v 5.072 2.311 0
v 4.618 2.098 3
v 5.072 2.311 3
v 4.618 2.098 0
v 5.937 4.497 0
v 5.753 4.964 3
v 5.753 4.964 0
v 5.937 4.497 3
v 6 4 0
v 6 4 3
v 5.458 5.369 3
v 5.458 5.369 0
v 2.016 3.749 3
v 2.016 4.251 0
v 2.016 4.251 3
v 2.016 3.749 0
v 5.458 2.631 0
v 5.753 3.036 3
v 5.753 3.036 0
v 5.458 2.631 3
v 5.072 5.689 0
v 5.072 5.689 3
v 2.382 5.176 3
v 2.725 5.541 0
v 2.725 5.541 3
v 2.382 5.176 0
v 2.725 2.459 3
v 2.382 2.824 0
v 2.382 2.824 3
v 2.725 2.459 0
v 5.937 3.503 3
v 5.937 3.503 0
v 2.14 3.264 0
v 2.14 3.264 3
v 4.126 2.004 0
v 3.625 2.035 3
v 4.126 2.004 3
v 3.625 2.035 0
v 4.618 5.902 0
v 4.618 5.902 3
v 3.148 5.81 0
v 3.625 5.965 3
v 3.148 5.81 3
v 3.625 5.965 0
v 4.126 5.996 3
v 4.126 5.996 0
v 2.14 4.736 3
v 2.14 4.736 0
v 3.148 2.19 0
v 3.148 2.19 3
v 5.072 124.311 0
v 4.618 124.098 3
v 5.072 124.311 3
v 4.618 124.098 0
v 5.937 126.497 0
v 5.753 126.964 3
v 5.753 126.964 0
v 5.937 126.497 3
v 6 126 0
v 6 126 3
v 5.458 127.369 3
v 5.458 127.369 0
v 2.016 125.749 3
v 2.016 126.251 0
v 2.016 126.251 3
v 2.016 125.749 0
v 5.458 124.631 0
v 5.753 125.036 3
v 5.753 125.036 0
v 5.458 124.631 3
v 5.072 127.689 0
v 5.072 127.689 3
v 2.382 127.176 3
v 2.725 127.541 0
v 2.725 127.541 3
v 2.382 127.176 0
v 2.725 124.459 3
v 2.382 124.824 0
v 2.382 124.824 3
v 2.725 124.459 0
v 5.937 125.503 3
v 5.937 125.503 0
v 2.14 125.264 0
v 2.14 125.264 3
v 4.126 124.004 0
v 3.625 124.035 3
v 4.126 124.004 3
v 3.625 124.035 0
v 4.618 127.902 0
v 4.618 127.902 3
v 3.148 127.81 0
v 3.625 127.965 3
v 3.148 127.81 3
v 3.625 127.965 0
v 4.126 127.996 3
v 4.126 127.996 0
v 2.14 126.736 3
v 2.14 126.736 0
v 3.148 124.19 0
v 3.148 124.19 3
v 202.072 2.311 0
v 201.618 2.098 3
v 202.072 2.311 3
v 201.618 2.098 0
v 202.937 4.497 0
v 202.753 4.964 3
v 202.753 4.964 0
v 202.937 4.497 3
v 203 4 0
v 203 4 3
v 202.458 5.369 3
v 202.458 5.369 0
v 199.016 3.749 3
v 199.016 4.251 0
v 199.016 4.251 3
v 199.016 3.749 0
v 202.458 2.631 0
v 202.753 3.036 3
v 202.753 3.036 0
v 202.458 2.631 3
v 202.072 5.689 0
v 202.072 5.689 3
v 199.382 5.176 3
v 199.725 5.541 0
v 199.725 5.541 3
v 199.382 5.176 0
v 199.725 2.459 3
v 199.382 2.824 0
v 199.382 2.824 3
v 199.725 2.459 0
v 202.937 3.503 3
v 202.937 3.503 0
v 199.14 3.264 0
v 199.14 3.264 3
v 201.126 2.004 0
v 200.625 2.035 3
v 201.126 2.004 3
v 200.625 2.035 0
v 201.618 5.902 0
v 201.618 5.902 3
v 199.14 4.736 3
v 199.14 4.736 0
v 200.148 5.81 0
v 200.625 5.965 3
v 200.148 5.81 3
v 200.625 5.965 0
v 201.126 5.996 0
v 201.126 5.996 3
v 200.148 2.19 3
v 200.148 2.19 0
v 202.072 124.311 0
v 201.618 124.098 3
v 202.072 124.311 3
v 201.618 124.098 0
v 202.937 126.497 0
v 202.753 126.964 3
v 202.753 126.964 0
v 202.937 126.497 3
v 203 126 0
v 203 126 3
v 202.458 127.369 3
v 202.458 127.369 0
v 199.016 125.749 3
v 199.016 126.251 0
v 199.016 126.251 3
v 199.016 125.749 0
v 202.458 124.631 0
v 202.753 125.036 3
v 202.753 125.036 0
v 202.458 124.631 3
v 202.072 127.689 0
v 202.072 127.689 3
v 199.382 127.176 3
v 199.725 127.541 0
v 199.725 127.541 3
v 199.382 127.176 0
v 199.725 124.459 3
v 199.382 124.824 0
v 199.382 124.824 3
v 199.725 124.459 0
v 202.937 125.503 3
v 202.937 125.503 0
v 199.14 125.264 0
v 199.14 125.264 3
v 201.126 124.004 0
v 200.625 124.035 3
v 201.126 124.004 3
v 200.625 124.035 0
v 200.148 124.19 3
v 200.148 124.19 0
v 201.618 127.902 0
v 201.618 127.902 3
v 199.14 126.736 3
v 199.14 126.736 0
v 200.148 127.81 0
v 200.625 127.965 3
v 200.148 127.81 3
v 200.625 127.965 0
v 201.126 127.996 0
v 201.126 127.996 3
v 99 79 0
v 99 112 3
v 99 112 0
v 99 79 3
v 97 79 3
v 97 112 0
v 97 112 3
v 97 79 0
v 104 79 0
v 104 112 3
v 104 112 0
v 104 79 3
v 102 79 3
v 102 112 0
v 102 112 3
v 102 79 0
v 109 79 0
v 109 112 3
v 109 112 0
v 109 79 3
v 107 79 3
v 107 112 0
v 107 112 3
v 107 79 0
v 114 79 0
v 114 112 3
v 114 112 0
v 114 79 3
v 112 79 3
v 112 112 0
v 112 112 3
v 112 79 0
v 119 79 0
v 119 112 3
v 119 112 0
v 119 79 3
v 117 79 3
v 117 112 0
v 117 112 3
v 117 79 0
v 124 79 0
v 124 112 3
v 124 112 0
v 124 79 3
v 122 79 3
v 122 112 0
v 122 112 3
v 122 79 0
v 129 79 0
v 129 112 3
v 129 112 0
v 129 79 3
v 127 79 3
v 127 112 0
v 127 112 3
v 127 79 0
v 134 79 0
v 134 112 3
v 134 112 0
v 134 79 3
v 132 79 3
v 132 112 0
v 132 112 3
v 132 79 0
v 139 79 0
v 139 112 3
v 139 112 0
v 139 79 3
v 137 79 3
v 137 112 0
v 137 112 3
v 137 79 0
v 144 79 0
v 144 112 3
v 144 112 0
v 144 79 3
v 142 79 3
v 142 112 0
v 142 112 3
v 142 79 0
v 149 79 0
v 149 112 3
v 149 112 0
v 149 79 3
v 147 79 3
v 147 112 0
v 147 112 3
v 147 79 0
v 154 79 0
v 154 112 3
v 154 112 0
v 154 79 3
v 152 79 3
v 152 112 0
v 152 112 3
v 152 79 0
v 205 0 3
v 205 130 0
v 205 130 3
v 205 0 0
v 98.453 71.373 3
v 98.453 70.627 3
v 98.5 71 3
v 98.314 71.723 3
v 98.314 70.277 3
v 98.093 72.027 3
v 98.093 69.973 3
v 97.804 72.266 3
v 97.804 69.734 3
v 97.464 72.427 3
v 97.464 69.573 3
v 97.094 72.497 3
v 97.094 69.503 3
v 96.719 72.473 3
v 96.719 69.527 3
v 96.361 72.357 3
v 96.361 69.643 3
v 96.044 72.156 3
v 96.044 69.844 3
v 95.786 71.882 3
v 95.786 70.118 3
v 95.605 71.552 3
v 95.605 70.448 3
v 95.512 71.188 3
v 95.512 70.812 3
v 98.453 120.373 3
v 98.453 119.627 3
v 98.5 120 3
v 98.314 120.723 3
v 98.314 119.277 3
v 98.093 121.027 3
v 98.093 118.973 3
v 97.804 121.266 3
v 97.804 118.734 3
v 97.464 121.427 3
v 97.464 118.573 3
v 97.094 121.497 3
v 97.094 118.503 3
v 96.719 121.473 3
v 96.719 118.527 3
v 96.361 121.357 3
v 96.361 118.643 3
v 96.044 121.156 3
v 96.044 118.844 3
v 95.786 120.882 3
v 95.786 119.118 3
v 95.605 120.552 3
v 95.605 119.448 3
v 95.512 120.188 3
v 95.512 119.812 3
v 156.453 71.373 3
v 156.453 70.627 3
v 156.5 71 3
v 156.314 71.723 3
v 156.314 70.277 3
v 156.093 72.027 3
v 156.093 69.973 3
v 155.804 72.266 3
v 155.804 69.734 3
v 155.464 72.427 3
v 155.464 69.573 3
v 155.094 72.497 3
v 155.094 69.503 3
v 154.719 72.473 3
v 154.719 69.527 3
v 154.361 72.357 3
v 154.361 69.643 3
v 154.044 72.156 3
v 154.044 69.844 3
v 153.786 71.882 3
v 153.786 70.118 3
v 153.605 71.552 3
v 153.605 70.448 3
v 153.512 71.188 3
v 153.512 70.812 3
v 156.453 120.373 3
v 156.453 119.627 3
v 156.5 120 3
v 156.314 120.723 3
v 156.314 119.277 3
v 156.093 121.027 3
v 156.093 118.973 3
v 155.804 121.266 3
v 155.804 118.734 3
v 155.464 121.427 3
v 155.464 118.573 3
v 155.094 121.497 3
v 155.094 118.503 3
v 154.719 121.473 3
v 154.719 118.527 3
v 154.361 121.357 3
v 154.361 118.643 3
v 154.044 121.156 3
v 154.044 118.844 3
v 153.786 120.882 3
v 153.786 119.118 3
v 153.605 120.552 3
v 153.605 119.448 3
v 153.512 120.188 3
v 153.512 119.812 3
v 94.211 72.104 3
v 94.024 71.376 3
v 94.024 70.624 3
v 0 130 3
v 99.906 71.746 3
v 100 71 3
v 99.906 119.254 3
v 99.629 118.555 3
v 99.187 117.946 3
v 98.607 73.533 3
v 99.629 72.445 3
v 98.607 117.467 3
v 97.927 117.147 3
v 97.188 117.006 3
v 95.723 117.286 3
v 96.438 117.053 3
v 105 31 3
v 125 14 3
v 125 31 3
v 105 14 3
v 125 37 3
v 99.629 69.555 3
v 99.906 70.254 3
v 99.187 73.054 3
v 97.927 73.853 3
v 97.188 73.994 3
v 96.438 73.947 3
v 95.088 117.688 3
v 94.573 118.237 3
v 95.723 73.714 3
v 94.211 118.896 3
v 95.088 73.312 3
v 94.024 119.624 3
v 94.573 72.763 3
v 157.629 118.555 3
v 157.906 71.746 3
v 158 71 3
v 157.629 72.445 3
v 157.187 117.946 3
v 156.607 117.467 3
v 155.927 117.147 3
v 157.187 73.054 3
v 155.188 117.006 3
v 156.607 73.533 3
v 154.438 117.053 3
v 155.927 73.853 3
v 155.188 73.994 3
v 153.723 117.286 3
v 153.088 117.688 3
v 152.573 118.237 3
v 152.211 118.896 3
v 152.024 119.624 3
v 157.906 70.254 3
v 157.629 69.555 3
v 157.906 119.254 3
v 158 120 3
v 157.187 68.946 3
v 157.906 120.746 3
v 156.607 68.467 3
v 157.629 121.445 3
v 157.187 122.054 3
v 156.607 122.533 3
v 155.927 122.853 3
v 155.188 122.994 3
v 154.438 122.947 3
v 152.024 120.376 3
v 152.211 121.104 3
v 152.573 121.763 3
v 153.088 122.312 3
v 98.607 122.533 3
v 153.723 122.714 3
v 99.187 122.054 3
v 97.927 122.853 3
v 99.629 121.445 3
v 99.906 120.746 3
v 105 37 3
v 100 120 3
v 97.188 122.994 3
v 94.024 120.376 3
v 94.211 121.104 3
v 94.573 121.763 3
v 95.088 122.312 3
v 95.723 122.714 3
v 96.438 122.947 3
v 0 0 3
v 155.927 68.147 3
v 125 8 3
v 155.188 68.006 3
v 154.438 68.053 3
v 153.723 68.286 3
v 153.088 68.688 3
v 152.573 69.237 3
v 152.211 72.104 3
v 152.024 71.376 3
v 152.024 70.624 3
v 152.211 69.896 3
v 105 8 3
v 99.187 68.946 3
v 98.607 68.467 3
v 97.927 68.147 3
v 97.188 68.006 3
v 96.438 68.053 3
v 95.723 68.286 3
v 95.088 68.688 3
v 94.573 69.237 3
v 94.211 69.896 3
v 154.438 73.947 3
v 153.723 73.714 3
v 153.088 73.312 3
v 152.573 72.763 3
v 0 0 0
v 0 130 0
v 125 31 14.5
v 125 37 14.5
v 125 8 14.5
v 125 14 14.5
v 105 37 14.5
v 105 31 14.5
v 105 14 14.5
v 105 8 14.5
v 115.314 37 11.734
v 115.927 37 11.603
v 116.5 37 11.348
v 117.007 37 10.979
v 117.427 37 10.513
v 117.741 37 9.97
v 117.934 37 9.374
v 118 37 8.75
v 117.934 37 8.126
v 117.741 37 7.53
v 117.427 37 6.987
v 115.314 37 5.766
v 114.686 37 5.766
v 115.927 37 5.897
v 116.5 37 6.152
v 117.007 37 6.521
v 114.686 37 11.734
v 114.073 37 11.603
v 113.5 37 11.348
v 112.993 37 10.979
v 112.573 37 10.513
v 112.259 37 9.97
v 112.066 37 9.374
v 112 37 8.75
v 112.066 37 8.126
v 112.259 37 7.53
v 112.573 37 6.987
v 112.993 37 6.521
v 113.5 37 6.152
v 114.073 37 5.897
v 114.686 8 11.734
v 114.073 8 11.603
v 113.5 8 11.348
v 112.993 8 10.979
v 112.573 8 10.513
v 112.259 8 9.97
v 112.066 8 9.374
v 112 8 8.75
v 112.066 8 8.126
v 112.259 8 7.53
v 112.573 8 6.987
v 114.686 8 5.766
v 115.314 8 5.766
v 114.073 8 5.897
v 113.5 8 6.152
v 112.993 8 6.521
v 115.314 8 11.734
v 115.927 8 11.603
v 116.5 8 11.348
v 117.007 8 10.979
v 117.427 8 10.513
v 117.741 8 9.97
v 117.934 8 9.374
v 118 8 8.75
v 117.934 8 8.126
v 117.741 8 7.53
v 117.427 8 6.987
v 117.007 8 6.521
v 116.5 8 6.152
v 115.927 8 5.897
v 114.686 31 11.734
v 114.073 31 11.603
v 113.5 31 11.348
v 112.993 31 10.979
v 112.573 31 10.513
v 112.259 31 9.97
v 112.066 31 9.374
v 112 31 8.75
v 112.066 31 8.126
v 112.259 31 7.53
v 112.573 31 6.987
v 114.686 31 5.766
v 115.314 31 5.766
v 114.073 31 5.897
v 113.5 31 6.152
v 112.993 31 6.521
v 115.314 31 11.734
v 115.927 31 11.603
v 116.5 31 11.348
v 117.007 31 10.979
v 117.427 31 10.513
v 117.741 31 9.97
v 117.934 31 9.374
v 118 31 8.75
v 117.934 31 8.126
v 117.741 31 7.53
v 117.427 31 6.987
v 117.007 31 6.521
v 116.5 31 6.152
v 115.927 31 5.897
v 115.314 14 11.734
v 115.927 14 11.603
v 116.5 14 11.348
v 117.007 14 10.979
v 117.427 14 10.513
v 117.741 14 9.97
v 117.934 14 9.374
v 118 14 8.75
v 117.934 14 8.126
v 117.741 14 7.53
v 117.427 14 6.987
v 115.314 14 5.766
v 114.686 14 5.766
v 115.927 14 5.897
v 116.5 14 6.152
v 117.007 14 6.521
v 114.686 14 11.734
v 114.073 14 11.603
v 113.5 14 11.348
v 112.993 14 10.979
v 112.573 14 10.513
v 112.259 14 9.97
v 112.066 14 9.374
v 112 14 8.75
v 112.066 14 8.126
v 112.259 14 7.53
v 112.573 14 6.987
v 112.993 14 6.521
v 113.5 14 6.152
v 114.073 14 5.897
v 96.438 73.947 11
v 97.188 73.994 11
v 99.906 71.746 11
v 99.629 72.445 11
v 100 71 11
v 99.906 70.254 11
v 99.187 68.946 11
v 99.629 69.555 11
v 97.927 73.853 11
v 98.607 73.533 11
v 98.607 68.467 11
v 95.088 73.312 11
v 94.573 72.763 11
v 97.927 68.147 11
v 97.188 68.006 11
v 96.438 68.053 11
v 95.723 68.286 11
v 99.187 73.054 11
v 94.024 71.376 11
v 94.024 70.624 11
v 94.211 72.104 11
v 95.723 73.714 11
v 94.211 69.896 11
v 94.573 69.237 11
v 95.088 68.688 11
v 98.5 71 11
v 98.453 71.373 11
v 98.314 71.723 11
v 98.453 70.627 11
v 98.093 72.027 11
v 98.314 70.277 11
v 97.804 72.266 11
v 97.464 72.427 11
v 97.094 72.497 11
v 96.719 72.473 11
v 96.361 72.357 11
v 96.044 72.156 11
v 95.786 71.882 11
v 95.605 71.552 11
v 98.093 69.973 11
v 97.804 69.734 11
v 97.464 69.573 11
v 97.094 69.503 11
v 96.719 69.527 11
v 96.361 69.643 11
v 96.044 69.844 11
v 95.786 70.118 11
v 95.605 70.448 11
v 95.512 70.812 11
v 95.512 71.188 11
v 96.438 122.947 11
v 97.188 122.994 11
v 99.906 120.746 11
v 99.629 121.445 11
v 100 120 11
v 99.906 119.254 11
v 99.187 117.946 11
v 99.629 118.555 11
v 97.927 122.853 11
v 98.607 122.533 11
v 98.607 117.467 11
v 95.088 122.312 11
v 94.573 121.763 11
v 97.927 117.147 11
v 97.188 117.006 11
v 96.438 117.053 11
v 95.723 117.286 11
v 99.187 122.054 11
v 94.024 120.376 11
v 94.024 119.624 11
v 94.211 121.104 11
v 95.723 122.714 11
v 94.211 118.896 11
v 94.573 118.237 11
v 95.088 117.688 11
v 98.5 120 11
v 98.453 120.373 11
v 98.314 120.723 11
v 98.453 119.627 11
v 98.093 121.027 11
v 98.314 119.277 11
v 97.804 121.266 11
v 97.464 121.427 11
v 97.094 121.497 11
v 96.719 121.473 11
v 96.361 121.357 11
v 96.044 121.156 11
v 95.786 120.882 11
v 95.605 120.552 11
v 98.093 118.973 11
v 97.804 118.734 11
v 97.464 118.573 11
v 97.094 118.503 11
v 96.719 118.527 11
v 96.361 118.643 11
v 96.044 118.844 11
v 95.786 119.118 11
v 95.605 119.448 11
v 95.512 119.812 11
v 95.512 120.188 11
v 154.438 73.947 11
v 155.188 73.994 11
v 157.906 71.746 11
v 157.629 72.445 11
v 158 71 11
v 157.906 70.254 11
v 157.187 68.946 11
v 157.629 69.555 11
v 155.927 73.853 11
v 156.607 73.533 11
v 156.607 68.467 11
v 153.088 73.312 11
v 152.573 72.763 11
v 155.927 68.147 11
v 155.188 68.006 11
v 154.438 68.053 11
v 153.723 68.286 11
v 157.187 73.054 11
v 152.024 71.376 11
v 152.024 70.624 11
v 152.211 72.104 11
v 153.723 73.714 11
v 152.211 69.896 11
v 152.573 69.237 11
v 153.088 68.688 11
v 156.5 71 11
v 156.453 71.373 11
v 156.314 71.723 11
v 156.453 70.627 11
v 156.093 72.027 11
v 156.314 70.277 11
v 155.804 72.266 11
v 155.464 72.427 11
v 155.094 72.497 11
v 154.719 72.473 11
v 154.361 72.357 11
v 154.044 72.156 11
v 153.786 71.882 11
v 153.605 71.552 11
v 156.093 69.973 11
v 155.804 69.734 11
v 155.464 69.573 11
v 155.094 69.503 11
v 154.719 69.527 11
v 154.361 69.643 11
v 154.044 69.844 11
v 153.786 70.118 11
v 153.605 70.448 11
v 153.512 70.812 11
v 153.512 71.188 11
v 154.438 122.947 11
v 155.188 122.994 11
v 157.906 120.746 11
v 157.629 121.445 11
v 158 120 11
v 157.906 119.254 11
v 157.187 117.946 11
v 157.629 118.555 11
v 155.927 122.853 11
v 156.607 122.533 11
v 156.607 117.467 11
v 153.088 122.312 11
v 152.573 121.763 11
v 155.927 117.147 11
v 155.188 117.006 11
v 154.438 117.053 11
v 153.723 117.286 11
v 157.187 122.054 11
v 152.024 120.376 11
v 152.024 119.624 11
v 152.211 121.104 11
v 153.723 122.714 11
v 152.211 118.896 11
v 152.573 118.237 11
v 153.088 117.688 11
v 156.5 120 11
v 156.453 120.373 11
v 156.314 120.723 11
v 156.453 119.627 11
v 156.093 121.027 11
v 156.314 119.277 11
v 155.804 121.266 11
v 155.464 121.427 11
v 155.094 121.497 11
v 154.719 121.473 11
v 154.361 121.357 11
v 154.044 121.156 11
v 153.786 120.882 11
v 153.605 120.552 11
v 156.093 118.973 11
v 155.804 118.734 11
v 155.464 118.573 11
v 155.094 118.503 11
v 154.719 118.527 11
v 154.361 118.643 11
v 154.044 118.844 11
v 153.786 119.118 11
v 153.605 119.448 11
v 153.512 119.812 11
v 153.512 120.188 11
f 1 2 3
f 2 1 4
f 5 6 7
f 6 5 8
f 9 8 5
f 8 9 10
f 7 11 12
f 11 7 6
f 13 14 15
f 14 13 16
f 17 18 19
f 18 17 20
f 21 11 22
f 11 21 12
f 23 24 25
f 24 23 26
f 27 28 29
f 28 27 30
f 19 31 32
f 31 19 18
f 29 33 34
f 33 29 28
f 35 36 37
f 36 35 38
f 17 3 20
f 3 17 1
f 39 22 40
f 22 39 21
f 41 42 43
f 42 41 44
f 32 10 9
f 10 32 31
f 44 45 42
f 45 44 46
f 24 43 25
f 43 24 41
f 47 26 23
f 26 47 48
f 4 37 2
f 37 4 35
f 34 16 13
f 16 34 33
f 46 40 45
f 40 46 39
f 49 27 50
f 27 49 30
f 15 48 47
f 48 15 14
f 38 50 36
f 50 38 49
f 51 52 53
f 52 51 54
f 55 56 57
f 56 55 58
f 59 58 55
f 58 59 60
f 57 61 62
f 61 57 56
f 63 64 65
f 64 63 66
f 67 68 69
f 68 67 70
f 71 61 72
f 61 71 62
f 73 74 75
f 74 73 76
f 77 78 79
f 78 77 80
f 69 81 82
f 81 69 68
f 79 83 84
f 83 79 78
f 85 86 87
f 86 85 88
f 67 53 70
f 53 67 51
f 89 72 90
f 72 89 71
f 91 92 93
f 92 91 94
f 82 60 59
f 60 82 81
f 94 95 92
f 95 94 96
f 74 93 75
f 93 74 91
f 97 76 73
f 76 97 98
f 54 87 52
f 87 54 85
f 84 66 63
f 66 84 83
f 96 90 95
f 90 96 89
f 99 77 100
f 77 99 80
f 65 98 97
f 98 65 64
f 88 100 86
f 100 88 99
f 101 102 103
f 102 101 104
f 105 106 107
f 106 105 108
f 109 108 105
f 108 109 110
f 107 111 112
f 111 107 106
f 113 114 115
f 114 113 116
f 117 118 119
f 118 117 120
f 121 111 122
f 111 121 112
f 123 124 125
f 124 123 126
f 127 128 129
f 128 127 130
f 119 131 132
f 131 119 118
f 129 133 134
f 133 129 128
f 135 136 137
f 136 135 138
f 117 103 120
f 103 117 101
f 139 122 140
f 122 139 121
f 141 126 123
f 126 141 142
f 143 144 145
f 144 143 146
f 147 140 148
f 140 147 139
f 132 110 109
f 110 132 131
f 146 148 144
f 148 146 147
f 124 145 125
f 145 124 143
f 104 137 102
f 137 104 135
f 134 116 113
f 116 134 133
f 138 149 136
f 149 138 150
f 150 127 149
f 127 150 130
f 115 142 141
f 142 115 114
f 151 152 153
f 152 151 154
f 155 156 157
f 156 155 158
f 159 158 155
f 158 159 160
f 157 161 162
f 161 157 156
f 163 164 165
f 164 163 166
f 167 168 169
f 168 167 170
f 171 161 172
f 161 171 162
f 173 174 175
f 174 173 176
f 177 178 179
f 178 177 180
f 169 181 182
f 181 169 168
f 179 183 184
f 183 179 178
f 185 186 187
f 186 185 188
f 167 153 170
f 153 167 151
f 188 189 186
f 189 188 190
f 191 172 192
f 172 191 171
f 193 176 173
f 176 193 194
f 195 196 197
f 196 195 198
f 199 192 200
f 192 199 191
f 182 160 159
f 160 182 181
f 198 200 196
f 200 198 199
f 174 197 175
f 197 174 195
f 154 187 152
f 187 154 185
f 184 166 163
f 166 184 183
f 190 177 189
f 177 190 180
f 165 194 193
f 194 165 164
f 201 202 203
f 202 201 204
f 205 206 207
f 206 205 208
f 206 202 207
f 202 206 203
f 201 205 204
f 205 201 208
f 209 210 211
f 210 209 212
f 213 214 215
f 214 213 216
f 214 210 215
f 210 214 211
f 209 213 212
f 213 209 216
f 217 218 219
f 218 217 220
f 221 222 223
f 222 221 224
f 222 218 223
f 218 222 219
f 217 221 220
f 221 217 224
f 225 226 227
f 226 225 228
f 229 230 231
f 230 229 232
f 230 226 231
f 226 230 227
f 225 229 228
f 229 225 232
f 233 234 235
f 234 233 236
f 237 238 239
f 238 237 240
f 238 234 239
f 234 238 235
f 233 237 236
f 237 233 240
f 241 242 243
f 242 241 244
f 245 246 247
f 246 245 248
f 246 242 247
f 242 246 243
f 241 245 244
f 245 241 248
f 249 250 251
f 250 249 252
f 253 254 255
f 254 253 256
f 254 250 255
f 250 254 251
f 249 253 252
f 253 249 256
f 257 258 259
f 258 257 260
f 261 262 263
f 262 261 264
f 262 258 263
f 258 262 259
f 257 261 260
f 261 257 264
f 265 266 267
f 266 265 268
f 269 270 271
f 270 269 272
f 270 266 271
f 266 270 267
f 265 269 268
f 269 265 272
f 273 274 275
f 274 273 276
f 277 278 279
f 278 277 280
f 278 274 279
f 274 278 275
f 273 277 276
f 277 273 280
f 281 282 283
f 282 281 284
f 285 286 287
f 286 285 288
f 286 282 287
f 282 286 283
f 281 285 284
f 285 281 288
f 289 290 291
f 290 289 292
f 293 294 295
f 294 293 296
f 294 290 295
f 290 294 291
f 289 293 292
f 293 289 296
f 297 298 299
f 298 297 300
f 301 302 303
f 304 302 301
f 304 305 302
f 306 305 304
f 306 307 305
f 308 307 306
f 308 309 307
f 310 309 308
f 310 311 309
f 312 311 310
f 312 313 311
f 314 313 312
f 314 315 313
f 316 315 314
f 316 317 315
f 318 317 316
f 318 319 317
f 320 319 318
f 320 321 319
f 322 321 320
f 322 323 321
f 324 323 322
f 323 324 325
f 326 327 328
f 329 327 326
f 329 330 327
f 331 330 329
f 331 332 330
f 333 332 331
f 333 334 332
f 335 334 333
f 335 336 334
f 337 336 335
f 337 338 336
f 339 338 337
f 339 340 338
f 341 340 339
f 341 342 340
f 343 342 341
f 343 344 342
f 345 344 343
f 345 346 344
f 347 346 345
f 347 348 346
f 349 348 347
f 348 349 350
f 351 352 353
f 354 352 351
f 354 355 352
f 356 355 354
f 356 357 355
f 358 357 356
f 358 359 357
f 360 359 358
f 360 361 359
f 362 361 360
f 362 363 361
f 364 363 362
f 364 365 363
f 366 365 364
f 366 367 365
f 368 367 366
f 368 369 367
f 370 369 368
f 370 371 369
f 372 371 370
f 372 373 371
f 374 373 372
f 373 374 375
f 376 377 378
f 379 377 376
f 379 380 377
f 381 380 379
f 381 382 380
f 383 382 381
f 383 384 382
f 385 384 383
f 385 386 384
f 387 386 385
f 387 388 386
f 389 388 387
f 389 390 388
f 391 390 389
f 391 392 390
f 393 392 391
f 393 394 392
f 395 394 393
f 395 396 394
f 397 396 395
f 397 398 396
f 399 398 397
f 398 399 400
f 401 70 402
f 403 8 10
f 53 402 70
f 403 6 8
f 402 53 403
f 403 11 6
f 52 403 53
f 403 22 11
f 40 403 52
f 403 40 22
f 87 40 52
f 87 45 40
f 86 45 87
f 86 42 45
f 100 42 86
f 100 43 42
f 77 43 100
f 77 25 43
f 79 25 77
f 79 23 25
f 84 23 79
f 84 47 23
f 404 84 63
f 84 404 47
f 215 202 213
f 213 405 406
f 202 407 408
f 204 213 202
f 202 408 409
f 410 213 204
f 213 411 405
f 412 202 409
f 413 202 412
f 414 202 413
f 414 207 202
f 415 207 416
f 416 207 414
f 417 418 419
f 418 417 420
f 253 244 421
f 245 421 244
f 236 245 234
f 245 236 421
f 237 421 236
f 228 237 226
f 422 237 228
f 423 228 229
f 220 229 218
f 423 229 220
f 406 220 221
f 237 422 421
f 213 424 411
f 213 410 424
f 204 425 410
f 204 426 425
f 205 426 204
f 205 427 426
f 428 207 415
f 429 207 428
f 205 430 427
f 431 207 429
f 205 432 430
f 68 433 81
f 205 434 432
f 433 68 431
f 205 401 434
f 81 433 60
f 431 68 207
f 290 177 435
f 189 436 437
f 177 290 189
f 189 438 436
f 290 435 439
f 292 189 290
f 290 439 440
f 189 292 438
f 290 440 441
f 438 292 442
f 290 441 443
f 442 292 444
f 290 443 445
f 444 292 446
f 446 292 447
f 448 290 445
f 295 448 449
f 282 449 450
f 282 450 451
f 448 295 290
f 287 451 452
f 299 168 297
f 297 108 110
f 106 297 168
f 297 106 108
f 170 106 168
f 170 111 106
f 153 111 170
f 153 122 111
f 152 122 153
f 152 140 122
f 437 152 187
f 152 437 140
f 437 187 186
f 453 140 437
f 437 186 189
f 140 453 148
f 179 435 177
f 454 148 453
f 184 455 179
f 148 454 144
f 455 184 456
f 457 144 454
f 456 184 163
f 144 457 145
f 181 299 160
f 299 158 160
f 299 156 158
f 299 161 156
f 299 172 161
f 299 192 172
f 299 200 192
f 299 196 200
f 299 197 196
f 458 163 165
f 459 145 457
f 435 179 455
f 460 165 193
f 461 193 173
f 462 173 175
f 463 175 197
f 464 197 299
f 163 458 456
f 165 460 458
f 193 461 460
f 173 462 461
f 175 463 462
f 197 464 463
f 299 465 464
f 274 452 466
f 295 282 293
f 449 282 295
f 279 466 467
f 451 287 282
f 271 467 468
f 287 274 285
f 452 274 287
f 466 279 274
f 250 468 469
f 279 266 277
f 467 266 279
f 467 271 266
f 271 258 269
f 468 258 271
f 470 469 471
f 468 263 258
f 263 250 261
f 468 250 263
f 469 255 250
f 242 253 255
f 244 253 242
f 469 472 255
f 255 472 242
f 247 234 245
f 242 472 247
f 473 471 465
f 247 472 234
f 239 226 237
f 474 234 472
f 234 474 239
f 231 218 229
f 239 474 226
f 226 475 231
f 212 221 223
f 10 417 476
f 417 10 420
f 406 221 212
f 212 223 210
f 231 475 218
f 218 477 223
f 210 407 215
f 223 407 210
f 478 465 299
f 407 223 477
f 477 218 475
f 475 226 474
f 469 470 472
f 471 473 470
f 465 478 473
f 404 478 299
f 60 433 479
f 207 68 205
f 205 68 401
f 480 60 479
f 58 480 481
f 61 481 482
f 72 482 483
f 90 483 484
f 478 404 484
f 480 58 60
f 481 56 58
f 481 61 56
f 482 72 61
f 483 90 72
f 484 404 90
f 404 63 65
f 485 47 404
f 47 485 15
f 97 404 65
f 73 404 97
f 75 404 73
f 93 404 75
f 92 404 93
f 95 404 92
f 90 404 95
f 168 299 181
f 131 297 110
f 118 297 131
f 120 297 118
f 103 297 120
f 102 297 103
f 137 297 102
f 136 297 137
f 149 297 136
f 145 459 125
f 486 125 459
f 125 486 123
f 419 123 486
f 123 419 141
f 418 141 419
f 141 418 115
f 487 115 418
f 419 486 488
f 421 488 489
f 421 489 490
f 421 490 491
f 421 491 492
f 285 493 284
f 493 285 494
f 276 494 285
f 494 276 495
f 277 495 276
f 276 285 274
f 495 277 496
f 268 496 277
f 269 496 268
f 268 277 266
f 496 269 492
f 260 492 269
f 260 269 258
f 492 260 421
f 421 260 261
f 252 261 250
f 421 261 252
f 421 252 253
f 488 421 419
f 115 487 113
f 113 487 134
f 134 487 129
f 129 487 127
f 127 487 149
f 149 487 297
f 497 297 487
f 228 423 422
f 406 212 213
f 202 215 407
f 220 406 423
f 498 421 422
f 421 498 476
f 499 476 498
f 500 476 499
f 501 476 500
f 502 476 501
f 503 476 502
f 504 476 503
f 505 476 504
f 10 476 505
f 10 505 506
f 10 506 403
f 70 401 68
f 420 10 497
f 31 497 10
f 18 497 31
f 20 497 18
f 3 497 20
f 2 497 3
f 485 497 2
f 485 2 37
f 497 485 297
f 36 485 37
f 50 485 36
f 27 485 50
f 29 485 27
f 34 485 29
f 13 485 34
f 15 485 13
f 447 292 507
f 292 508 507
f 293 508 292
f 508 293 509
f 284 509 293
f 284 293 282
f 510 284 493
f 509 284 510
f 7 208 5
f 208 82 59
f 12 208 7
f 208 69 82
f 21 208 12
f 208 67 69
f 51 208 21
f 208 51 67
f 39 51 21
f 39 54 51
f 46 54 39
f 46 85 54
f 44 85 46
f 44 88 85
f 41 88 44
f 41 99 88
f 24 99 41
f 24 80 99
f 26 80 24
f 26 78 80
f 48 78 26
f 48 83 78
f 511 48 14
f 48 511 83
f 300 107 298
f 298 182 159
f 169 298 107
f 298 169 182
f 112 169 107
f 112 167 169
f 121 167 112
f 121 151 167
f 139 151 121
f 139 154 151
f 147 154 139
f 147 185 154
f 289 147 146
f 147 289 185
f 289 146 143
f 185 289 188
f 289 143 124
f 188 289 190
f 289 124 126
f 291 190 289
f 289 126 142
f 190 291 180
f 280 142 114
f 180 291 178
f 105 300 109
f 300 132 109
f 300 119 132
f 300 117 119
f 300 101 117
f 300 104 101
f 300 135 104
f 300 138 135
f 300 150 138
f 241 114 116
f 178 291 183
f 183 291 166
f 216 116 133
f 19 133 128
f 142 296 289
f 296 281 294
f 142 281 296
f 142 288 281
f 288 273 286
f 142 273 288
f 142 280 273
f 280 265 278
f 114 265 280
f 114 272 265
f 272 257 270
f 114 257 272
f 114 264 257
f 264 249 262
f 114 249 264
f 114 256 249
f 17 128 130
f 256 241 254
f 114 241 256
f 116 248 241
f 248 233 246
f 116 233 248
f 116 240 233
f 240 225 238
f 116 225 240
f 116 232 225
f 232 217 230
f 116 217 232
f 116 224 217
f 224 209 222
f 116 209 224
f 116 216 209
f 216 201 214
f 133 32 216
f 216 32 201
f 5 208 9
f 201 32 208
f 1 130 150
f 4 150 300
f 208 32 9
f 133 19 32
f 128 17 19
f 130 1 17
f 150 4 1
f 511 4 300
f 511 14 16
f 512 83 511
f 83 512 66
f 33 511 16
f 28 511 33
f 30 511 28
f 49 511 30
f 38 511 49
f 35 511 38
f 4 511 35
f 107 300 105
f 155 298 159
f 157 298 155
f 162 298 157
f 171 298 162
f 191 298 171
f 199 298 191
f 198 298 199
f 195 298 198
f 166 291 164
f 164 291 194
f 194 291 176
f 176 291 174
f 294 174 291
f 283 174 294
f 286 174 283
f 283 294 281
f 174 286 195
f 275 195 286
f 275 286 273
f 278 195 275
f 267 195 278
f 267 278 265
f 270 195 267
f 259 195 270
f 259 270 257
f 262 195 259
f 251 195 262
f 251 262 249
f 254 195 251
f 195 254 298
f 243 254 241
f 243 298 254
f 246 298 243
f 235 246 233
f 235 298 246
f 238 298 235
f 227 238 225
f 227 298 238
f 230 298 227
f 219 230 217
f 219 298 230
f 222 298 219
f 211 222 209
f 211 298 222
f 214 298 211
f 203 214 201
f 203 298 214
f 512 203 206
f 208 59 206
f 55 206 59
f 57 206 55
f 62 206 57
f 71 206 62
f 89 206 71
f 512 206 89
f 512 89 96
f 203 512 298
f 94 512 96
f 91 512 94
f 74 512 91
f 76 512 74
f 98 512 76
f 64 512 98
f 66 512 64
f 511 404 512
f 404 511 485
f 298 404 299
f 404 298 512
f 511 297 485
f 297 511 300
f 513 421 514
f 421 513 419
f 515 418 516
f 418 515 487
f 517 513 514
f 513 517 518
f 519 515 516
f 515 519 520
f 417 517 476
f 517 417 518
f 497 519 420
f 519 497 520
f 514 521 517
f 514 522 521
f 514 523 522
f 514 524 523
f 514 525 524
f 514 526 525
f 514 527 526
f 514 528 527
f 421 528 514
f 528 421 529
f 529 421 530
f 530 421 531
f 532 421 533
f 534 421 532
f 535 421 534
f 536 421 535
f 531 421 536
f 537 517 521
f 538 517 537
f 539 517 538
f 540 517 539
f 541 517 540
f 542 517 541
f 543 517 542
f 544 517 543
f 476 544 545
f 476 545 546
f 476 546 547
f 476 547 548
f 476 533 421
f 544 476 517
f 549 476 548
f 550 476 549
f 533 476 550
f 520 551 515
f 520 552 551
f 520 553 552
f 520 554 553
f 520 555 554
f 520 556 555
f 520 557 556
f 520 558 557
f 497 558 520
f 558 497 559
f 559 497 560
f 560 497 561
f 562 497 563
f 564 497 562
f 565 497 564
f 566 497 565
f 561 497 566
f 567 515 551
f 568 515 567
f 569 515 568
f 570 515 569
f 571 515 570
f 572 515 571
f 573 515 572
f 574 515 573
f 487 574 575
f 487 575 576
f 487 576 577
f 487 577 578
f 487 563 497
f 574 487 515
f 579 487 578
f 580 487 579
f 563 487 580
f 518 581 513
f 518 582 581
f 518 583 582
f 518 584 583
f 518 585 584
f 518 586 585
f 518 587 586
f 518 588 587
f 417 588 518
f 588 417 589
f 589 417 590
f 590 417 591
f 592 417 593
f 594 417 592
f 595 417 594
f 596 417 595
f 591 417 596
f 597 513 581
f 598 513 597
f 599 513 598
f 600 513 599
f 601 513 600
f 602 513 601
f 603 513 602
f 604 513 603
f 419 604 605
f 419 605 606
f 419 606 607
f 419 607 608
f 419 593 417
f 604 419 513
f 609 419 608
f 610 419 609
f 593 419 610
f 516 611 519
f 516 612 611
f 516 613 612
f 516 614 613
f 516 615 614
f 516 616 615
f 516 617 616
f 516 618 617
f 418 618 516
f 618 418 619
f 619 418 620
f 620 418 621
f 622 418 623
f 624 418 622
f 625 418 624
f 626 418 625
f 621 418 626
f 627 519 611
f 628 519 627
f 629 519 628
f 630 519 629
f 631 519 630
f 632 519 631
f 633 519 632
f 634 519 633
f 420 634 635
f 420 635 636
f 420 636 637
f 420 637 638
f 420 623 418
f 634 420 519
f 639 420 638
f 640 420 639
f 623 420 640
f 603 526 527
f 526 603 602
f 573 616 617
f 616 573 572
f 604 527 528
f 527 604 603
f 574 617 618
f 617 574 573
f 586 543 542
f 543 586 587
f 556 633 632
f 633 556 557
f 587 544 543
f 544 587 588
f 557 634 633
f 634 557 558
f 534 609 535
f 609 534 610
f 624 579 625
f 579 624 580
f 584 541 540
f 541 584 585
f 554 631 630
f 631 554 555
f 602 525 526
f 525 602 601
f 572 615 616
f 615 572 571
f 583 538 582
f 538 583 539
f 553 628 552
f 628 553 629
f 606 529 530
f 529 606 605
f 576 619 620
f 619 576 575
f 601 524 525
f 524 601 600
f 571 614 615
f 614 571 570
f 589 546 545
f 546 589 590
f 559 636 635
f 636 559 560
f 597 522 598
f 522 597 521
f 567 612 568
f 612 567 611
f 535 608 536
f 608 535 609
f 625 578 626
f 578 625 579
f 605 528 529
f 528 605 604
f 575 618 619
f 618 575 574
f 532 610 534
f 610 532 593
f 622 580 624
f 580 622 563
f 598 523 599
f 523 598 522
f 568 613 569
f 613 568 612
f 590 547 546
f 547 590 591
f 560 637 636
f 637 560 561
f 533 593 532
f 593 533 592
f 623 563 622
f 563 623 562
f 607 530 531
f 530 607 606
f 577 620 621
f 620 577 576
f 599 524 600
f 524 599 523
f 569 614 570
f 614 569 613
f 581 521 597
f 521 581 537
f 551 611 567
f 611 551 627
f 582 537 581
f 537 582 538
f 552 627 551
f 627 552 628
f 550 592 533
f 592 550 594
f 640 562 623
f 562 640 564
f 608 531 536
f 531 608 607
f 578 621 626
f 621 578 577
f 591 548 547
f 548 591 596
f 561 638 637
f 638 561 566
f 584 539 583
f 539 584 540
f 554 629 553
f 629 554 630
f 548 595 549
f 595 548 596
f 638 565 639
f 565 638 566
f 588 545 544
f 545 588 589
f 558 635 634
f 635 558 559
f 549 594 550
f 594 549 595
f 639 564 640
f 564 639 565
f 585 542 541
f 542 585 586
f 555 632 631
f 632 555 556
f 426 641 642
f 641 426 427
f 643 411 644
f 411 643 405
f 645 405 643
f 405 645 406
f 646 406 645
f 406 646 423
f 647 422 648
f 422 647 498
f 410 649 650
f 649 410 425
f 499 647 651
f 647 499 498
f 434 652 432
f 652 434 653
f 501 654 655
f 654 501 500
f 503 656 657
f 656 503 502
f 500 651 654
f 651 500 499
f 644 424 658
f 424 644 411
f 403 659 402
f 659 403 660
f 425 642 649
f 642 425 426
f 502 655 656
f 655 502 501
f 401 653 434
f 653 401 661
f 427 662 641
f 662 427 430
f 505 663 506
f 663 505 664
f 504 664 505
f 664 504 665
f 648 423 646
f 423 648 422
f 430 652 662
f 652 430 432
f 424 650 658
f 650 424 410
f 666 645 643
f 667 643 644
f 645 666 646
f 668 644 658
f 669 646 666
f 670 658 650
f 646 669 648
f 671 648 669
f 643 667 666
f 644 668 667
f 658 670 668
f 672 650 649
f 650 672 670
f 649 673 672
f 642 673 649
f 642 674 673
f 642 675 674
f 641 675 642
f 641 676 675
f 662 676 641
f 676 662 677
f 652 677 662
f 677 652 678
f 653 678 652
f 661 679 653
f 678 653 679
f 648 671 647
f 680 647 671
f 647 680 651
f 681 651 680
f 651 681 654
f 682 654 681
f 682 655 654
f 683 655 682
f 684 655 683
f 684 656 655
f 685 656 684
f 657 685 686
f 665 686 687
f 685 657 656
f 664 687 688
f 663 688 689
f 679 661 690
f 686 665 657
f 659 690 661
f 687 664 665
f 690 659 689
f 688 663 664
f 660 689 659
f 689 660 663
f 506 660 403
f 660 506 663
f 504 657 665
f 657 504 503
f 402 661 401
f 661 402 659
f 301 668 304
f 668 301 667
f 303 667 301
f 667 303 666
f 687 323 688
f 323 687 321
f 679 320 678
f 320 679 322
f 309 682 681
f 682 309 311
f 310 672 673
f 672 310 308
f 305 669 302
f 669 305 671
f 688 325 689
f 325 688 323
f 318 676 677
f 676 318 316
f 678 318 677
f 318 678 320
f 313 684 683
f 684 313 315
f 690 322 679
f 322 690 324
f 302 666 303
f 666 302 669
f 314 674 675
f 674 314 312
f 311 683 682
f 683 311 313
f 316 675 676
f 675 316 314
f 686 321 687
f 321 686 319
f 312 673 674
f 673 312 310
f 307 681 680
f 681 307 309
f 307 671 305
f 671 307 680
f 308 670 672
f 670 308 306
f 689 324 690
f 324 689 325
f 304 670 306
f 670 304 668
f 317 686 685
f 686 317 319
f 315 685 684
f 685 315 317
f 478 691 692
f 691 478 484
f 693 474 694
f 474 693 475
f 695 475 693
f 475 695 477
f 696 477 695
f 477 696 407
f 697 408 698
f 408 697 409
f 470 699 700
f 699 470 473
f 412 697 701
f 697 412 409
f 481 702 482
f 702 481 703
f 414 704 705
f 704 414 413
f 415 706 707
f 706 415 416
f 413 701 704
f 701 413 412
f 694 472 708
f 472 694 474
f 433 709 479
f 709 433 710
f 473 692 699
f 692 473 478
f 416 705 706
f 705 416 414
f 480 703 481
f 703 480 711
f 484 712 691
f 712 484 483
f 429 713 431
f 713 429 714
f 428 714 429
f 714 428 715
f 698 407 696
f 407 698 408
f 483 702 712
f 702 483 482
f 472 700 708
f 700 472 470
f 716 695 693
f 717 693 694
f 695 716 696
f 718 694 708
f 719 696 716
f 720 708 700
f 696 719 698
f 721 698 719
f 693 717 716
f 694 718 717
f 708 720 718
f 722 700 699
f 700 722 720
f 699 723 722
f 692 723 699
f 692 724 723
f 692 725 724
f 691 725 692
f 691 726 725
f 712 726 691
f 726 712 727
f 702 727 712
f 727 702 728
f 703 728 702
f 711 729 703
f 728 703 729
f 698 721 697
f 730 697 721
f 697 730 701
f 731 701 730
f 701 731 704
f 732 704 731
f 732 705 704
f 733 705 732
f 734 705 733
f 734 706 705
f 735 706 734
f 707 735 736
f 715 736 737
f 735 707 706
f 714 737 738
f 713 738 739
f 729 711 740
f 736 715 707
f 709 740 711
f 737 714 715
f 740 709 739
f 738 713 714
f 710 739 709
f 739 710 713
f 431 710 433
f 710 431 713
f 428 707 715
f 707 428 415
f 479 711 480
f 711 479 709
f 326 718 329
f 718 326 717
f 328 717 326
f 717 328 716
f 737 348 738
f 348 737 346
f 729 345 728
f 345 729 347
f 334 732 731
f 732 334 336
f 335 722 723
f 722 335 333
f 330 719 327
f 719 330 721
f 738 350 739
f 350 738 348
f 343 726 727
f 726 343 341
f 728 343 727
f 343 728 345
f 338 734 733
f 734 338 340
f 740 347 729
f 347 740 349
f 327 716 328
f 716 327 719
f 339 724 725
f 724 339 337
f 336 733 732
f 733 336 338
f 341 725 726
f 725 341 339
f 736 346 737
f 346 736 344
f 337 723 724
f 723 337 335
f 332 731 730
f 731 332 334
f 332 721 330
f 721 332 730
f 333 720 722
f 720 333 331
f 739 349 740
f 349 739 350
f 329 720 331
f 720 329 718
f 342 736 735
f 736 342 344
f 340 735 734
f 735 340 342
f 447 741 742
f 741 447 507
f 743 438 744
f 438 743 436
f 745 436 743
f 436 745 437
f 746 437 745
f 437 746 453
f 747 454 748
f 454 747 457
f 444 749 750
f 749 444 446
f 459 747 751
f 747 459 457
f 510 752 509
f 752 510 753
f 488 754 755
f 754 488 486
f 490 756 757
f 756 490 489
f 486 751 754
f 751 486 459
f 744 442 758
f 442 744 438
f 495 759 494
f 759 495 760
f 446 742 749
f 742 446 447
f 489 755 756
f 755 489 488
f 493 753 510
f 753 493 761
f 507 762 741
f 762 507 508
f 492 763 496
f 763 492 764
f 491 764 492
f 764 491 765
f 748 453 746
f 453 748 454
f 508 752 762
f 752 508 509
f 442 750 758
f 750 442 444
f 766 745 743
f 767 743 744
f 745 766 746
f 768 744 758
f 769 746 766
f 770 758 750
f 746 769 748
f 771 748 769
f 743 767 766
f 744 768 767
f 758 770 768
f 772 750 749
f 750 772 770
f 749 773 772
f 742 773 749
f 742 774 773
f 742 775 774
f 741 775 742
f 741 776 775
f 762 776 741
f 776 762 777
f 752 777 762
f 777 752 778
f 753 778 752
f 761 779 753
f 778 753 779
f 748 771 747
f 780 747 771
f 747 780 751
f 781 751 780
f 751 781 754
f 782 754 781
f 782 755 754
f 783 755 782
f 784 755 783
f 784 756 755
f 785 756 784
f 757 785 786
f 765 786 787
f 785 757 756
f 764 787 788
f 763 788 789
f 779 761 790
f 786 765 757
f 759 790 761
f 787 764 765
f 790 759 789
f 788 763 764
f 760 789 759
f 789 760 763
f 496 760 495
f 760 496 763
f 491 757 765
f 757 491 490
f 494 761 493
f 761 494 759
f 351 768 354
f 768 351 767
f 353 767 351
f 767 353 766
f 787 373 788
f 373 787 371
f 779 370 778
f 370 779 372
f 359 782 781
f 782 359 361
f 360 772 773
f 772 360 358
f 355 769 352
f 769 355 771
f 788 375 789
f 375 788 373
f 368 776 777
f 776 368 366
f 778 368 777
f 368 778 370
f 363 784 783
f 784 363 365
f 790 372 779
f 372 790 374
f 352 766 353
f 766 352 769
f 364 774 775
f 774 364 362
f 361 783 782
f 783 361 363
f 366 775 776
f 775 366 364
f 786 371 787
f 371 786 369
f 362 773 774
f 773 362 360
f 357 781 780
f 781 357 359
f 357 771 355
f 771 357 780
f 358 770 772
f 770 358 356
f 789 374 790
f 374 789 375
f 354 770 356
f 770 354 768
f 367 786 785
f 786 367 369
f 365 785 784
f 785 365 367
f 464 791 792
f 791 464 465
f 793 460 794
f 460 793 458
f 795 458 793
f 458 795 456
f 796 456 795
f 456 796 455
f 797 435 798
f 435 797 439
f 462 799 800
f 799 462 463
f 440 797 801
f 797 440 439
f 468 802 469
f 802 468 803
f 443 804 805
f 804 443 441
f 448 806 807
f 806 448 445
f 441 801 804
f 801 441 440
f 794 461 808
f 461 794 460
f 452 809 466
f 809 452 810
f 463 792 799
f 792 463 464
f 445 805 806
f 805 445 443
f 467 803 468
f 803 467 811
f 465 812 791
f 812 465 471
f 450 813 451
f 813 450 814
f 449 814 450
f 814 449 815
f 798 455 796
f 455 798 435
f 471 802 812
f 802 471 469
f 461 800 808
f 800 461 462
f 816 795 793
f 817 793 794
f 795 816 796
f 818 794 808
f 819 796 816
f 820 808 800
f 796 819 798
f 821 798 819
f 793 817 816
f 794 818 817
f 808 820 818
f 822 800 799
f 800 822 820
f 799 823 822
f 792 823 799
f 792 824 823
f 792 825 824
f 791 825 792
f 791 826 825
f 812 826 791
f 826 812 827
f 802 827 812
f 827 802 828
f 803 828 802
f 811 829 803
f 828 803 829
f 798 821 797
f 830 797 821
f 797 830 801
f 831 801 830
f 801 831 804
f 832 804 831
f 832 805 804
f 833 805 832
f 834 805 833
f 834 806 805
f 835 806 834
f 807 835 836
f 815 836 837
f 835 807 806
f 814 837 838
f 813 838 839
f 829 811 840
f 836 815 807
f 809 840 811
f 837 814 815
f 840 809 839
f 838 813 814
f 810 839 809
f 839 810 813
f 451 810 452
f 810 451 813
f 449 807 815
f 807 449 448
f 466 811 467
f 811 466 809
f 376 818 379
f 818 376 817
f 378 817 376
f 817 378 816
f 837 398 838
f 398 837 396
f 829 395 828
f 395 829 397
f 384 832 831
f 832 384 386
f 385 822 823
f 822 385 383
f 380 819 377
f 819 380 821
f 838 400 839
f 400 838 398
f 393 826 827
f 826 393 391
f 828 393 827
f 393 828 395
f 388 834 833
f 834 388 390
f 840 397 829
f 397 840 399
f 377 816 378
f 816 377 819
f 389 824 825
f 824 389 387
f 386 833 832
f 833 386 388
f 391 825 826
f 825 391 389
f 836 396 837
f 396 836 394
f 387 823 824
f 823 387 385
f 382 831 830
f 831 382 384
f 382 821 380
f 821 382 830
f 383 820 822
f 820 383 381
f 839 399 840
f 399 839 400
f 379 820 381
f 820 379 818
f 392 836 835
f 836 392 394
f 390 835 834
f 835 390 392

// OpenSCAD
display_x = 165;
display_y = 100;
display_z = 3;

border_x = 20;
border_y = 15;

case_x = display_x + 2 * border_x;
case_y = display_y + 2 * border_y;

// Board: https://waveshare.com/w/upload/7/73/CM4-IO-BASE-A-details-size.jpg
// These are only the holes:
board_x = 85 - 3.5 - 23.5;
board_y = 56 - 2 * 3.5;

// PoE LAN module
// Will be replaced by keystone modules later
lan_x = 80;
lan_y = 29;
lan_z = 23;

difference() {
    cube([display_x + 2 * border_x, display_y + 2 * border_y, display_z]);

    // back plate screw holes
    for (x = [4, case_x - 4], y = [4, case_y - 4]) {
        color("red")
        translate([x, y, -0.1])
            cylinder(10, d=4, $fn=25);
    }

    // vents
    for (x = [-board_x: 5: 0]) {
        color("red")
        translate([x + case_x - 50, case_y - board_y - 2, -1])
            cube([2, board_y - 16, 8]);
    }
}

// PoE LAN module holder
translate([case_x - lan_x - 20, 8, display_z])
    difference() {
        cube([20, lan_y, lan_z / 2]);
        translate([-1, 6, -1])
            cube([22, lan_y - 12, lan_z]);
        translate([10, lan_y / 2, lan_z / 4])
            rotate([90, 0, 0])
            cylinder(1.1 * lan_y, d=6, center=true, $fn=30);
    }

// board screw points
for (x = [-board_x, 0], y = [-board_y, 0]) {
    translate([x + case_x - 50, y + case_y - 10, display_z])
        difference() {
            cylinder(8, d=6, $fn=25);
            cylinder(9, d=3, $fn=25);
        }
}
